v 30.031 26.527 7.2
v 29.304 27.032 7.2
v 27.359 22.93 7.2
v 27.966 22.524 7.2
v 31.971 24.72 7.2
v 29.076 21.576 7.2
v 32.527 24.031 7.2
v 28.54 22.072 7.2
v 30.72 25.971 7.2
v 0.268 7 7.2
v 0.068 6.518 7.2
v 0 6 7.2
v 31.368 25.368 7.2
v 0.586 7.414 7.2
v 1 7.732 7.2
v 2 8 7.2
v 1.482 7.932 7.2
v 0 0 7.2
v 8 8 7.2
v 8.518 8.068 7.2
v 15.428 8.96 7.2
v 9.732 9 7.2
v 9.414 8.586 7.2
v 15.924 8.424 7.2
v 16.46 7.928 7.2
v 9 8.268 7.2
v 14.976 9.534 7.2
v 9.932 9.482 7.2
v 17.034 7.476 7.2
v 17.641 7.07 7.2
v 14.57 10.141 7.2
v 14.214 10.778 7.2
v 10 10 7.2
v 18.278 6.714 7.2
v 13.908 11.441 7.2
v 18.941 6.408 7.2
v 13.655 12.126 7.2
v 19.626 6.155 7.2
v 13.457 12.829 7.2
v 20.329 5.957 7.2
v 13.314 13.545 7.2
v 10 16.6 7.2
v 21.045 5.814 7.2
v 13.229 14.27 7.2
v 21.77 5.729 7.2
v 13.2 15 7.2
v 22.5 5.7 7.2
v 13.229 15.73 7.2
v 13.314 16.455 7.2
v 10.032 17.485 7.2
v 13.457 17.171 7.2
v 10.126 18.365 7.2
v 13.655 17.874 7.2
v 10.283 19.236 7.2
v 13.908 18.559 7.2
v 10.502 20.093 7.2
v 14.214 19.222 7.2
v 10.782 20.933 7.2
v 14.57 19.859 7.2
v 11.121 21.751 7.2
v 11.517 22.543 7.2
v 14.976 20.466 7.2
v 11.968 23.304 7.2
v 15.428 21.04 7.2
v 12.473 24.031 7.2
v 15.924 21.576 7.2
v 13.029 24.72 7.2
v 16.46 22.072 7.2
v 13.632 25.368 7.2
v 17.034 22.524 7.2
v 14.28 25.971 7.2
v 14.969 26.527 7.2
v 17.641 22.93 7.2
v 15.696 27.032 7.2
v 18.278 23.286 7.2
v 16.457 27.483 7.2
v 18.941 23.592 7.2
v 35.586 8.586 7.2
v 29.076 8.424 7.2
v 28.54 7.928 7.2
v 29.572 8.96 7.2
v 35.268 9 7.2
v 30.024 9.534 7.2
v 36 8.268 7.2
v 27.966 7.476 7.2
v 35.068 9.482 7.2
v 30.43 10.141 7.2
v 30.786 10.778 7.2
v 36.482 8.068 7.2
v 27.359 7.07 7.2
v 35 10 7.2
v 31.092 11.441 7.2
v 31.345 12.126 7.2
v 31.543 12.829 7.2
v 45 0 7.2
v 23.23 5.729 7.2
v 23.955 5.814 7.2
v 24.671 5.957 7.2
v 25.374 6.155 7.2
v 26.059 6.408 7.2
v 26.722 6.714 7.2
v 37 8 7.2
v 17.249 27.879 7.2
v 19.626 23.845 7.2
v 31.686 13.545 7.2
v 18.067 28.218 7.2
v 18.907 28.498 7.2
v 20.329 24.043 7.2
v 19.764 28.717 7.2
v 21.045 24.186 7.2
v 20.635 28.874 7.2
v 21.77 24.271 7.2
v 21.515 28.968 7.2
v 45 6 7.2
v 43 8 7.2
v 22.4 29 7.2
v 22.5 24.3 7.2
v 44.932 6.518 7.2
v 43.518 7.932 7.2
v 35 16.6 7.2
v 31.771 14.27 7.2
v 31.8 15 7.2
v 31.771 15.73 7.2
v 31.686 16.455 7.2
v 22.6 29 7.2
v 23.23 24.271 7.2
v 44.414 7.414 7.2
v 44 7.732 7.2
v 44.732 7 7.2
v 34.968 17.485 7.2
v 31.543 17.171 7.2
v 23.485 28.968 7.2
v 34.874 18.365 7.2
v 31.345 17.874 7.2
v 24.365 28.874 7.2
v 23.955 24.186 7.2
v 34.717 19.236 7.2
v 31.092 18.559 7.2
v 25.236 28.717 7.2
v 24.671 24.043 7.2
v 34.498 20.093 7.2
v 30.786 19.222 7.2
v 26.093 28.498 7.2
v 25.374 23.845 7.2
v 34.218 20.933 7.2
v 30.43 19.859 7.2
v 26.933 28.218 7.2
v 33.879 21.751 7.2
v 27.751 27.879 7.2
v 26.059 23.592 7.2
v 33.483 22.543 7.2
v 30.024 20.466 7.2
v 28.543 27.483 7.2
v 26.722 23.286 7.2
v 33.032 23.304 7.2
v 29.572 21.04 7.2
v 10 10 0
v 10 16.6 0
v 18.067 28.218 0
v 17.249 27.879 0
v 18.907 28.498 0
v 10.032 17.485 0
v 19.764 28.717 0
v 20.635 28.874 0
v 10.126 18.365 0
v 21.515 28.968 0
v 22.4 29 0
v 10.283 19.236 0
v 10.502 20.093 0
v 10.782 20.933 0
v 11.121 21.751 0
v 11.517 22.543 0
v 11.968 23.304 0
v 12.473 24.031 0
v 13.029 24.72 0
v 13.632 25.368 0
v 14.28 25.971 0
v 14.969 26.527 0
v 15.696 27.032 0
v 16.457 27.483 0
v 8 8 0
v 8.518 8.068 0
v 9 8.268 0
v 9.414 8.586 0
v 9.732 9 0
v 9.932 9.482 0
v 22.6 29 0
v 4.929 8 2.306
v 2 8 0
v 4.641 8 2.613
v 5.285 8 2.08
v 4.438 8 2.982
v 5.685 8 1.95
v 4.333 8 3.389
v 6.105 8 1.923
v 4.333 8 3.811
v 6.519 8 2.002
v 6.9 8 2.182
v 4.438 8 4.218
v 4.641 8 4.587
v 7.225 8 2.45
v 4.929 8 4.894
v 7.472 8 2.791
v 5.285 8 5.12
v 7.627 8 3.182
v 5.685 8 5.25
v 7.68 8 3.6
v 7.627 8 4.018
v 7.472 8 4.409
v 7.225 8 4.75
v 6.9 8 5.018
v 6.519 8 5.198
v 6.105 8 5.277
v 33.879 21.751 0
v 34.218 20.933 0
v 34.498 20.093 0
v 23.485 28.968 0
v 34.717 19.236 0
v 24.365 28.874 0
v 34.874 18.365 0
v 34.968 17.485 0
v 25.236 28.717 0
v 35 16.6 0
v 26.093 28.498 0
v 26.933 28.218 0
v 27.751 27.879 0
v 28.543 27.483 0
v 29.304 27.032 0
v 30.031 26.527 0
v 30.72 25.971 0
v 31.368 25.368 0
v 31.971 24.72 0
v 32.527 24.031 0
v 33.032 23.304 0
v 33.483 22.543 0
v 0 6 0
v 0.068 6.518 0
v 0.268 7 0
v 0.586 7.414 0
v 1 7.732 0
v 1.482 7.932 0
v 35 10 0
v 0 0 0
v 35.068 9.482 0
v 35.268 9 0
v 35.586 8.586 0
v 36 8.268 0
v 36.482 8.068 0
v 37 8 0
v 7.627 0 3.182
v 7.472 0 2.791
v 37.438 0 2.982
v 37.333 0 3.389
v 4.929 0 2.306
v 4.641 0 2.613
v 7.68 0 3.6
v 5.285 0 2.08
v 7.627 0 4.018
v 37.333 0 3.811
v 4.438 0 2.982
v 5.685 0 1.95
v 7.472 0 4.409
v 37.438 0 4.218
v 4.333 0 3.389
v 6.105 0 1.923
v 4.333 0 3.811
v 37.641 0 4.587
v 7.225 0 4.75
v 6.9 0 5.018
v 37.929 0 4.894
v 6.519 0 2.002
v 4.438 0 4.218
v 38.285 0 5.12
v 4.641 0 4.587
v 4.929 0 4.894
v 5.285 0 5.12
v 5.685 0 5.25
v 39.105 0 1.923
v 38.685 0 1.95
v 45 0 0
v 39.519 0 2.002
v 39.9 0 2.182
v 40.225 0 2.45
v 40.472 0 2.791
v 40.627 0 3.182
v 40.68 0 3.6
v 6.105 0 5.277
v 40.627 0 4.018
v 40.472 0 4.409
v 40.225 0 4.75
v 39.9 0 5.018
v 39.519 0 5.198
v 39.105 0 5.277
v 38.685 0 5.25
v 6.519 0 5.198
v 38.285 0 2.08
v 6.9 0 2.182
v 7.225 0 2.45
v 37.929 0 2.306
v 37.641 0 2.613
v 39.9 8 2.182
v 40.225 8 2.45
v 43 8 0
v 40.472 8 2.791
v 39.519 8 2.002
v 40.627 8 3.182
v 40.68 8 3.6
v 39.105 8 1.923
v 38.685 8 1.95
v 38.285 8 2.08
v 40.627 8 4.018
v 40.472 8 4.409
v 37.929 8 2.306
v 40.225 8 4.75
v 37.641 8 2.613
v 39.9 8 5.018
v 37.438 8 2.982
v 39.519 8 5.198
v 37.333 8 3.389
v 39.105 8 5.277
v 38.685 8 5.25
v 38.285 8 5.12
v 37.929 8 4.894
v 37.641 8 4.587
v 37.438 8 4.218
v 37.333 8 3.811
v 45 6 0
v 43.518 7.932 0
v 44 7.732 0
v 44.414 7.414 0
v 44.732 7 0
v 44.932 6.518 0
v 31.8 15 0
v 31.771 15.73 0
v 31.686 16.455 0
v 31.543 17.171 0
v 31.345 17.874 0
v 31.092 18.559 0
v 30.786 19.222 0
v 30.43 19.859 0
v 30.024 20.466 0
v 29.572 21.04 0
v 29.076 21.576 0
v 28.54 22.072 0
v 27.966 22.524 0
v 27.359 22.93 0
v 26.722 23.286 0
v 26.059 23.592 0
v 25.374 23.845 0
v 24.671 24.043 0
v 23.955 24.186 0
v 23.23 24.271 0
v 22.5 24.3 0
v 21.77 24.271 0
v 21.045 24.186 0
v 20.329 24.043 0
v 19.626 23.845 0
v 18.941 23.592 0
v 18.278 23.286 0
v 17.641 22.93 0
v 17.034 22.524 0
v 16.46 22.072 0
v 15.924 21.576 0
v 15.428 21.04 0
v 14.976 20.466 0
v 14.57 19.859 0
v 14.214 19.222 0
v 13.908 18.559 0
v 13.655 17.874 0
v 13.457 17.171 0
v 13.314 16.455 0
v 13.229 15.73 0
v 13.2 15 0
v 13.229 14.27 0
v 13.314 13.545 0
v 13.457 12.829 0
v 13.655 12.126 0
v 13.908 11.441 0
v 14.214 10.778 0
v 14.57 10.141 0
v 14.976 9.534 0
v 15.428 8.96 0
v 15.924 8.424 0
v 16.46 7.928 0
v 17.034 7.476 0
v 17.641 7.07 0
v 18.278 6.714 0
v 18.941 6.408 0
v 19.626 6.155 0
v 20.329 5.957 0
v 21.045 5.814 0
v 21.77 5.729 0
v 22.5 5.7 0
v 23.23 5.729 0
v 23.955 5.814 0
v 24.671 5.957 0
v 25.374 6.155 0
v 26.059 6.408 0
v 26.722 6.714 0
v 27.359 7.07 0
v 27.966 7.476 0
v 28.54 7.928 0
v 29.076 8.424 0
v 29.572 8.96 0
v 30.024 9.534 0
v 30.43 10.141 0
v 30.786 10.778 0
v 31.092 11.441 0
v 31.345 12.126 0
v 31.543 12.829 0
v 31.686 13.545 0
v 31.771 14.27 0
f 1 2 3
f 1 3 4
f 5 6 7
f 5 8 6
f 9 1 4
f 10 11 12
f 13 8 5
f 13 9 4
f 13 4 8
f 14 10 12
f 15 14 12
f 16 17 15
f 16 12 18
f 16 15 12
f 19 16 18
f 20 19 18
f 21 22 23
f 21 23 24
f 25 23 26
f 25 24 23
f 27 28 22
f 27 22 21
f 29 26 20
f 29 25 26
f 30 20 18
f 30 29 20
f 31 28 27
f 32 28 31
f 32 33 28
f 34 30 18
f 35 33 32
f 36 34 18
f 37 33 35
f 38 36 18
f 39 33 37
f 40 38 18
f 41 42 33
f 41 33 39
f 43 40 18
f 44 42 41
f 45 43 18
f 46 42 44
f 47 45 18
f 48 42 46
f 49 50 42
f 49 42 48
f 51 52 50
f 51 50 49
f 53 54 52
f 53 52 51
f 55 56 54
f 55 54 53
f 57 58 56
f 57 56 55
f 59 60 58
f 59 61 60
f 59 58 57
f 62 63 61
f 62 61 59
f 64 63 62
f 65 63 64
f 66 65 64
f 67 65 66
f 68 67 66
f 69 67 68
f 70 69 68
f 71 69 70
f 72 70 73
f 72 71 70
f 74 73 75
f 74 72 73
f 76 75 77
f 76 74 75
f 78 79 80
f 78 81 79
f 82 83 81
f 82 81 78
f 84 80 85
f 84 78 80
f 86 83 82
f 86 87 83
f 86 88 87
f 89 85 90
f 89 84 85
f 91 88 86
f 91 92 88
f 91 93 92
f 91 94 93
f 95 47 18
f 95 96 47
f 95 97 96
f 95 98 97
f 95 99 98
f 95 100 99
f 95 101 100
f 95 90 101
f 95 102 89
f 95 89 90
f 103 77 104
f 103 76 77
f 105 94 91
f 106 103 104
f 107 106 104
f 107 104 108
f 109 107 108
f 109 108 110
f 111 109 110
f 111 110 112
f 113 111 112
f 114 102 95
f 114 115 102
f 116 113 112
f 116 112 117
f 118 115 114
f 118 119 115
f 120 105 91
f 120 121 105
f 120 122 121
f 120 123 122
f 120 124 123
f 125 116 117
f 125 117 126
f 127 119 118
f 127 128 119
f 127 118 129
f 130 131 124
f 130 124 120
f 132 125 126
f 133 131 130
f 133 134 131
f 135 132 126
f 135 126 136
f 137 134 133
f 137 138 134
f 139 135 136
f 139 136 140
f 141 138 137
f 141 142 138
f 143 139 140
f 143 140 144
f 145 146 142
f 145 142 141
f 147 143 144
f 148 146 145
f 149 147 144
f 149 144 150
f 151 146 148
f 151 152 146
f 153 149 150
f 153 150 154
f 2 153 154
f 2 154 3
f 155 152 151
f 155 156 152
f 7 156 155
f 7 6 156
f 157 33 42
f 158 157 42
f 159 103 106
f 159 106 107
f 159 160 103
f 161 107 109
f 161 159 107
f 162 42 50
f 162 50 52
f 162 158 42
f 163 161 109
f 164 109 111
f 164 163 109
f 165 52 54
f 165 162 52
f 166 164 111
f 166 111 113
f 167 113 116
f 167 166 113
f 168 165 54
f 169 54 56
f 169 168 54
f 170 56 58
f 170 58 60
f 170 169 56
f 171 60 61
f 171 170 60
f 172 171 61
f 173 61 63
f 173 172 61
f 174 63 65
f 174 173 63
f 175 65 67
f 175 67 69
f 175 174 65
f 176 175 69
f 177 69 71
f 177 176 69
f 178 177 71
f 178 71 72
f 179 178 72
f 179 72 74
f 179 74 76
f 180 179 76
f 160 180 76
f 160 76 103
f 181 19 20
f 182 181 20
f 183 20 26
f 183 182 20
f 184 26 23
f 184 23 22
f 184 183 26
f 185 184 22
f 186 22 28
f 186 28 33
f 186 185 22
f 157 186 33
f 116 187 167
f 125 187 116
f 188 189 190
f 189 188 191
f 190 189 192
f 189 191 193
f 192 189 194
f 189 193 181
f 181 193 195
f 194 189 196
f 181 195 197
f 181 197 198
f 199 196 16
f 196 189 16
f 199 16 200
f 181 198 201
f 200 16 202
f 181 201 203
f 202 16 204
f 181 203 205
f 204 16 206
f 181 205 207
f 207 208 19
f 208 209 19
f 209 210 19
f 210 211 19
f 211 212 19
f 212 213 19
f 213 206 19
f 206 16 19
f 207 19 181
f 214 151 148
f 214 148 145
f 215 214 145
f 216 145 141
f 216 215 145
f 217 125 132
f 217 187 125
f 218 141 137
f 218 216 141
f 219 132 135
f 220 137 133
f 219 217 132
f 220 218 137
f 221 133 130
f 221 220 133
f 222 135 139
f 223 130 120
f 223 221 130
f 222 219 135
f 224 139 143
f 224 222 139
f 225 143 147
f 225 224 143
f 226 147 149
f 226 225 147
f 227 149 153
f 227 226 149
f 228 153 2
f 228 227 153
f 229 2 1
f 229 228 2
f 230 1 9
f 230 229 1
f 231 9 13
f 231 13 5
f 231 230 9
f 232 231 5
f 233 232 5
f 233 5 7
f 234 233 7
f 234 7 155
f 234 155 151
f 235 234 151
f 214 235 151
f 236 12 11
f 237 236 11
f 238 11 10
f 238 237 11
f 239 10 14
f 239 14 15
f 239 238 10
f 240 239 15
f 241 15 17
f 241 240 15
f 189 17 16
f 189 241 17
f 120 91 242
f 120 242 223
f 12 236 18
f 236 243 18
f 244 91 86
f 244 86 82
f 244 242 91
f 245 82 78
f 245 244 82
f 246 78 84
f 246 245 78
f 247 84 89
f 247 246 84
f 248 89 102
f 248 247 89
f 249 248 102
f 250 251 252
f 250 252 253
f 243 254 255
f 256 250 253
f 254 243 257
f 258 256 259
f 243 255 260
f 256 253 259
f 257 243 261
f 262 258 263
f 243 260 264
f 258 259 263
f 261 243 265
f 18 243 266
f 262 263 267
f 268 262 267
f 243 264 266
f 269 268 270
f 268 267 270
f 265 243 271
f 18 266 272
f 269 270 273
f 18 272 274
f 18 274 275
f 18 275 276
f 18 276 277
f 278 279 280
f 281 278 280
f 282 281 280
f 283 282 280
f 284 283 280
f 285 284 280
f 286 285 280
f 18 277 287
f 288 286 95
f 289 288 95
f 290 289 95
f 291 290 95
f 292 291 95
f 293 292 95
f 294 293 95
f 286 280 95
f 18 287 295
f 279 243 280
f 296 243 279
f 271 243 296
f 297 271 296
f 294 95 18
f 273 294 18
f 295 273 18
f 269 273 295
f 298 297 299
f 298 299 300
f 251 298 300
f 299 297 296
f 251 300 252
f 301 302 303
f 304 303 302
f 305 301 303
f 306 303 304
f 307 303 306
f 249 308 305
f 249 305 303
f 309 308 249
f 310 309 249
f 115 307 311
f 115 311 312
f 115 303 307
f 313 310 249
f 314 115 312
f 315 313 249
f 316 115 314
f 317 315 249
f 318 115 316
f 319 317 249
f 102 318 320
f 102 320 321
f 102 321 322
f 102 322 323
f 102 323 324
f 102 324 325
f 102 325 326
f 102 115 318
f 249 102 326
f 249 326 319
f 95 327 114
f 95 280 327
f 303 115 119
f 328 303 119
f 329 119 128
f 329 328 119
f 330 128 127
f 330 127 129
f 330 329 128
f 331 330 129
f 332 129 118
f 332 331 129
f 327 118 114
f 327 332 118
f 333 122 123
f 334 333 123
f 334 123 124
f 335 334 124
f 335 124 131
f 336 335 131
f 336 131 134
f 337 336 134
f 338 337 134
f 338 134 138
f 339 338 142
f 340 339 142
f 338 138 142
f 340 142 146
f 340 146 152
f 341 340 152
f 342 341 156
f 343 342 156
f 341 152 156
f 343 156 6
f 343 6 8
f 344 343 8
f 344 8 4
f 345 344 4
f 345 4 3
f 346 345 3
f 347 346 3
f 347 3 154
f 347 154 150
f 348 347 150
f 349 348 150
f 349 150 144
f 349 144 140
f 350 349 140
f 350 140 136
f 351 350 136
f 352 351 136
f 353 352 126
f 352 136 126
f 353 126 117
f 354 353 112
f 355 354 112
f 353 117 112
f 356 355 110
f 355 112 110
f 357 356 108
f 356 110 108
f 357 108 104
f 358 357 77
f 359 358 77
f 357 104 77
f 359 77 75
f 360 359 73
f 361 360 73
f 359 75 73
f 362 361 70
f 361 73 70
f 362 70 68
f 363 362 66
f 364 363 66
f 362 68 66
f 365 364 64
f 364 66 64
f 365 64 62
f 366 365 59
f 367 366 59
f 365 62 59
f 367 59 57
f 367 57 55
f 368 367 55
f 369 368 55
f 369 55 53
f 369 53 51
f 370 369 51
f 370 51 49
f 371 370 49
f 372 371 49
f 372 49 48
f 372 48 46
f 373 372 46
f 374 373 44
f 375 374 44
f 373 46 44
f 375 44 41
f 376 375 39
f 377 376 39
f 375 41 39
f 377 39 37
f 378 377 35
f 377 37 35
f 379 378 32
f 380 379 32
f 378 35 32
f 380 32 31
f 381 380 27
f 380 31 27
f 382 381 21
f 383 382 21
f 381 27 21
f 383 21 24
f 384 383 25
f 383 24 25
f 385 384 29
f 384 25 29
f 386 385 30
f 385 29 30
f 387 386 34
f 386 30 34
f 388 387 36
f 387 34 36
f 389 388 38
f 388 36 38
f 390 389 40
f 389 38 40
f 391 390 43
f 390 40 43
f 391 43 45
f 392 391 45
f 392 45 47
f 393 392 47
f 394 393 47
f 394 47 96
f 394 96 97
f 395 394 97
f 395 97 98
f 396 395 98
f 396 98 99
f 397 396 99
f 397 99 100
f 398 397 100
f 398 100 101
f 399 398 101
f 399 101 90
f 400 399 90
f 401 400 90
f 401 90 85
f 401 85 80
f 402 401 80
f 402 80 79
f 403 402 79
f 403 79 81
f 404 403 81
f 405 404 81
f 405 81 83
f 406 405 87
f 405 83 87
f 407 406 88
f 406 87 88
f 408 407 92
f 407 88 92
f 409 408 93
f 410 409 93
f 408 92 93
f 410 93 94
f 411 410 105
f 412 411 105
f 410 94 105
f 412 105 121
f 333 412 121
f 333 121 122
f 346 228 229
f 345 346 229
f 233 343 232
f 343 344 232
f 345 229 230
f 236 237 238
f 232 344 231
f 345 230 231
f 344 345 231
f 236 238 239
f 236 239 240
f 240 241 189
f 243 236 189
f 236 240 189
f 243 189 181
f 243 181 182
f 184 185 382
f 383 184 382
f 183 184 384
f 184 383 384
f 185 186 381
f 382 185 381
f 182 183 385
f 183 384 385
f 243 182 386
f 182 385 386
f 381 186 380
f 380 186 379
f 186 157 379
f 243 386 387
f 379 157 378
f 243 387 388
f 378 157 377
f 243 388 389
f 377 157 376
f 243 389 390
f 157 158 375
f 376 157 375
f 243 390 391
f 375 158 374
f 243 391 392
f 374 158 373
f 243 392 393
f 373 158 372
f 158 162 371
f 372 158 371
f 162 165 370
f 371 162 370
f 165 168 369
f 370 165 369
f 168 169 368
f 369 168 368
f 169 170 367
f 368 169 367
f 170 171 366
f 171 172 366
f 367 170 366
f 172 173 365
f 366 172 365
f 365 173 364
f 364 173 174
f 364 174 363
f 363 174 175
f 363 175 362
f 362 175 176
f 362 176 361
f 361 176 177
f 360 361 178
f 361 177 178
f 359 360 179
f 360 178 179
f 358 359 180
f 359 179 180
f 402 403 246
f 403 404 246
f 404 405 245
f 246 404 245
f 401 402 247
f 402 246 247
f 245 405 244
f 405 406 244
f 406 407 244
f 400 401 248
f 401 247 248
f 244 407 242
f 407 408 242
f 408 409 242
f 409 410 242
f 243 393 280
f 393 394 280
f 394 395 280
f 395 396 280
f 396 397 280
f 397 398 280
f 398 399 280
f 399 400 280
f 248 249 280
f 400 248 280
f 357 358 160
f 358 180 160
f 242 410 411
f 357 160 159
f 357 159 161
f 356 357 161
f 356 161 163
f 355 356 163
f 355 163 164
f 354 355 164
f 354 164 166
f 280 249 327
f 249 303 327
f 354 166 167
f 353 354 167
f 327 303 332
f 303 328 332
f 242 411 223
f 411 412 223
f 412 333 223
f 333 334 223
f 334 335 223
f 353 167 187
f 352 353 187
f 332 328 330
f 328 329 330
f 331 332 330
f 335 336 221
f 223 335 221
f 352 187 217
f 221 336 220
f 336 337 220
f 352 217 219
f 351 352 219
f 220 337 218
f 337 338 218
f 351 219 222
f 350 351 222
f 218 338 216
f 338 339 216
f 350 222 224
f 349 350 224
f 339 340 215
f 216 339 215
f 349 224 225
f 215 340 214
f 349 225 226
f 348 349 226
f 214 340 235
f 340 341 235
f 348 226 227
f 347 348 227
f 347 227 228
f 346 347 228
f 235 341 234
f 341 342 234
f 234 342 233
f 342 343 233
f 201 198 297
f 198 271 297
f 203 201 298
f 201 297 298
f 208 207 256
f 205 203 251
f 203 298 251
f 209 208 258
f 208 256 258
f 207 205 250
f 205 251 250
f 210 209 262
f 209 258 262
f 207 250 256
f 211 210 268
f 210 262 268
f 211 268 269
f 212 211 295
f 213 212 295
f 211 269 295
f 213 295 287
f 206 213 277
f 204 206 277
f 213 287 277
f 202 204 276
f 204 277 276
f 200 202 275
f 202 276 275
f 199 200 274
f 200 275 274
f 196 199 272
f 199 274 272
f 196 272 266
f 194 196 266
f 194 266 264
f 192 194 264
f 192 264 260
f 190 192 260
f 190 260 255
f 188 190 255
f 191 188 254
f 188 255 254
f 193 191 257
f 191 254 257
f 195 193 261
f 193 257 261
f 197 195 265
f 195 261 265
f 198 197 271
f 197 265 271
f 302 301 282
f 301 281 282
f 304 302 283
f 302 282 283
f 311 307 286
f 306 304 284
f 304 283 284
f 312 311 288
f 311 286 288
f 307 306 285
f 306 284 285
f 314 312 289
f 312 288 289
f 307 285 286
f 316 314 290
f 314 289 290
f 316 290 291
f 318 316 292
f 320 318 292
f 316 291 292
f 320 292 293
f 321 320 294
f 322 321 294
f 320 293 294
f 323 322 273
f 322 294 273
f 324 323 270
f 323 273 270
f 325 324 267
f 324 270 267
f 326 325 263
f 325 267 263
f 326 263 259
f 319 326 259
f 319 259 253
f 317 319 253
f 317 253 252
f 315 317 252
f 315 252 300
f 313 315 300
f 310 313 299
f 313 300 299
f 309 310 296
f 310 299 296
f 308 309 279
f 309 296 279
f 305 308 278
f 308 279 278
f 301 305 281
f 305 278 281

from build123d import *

# Parameters (mm, degrees)
BOX_W           = 45
BOX_H           = 29
BOX_DEPTH       = 7.2
SKETCH_R        = 1.68
POCKET_DEPTH    = 29.001
SKETCH001_R     = 9.3
SKETCH001_W     = 10
SKETCH001_H     = 21
POCKET001_DEPTH = 8
FILLET_R        = 2
FILLET001_R     = 12.4


with BuildPart() as part:
    # Box → Box (new body)
    with BuildSketch(Plane.XY):
        with Locations((22.5, 14.5)):
            Rectangle(BOX_W, BOX_H)
    extrude(amount=BOX_DEPTH)

    # Sketch → Pocket (cut, through all)
    with BuildSketch(Plane.XZ):
        with Locations((6, 3.6)):
            Circle(SKETCH_R)
        with Locations((39, 3.6)):
            Circle(SKETCH_R)
    extrude(amount=-POCKET_DEPTH, mode=Mode.SUBTRACT)

    # Sketch001 → Pocket001 (cut)
    with BuildSketch(Plane.XY.offset(7.2)):
        with Locations((22.5, 15)):
            Circle(SKETCH001_R)
        with Locations((5, 18.5)):
            Rectangle(SKETCH001_W, SKETCH001_H)
        with Locations((40, 18.5)):
            Rectangle(SKETCH001_W, SKETCH001_H)
    extrude(amount=-POCKET001_DEPTH, mode=Mode.SUBTRACT)

    # Fillet
    fillet_edges = [part.edges().sort_by_distance(p)[0] for p in [
        (45, 8, 3.6),
        (35, 8, 3.6),
        (10, 8, 3.6),
        (0, 8, 3.6),
    ]]
    fillet(fillet_edges, radius=FILLET_R)

    # Fillet001
    fillet001_edges = [part.edges().sort_by_distance(p)[0] for p in [
        (10, 29, 3.6),
        (35, 29, 3.6),
    ]]
    fillet(fillet001_edges, radius=FILLET001_R)


solid = part.part
